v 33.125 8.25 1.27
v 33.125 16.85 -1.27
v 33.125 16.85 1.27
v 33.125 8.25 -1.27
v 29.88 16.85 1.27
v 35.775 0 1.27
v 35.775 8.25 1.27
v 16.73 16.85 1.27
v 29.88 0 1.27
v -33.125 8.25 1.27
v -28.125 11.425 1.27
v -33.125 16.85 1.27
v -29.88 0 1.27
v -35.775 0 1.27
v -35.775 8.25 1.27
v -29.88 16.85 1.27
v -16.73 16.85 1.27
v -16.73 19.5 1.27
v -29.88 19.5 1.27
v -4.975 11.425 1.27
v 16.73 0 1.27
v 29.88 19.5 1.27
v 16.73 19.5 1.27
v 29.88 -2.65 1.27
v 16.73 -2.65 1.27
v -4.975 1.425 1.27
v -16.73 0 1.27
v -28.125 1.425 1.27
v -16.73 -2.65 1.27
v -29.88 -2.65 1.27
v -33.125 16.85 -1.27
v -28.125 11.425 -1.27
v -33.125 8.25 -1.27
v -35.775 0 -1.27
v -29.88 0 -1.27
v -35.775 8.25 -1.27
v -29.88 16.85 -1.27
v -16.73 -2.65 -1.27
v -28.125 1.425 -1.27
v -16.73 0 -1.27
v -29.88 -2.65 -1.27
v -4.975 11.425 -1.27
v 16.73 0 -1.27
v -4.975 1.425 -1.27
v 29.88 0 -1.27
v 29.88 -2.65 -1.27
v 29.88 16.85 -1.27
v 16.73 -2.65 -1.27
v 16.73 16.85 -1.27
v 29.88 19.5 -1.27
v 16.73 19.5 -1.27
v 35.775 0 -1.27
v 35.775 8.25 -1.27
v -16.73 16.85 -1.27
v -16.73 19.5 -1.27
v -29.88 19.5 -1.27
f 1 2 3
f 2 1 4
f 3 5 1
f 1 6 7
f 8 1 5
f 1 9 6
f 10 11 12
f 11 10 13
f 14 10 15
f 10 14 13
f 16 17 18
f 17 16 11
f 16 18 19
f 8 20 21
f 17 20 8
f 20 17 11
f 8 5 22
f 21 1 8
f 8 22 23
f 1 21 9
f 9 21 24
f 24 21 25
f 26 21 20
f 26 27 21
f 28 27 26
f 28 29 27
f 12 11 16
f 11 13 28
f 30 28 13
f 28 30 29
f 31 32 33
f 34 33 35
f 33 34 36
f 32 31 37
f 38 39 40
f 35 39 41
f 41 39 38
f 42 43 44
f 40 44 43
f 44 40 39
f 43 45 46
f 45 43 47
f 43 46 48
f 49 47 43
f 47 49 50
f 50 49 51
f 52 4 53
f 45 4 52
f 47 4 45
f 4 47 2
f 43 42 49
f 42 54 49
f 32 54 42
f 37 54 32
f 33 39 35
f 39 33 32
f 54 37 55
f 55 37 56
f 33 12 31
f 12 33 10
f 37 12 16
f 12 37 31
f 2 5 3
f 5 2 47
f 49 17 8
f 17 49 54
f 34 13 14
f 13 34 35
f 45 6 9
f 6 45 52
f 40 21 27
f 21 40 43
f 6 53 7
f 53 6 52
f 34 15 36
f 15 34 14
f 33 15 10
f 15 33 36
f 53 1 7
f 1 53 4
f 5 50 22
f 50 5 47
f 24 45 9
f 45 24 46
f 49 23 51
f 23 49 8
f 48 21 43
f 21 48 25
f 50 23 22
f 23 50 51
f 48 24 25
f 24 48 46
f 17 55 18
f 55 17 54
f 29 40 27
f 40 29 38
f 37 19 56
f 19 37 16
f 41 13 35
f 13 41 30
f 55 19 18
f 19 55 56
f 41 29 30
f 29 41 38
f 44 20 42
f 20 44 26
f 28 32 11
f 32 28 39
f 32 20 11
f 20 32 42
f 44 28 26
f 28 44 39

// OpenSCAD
// Part for the base of my DSO311
//
//

// Configurable parameters - units in mm

/* [Outer Box Dimensions] */
width = 66.25;
height = 16.85;
depth = 2.54;

side_tab_width = 71.55;
side_tab_height = 8.25;

top_tab_width = 13.15;
top_tab_height = 22.15;

sep = 33.46;

hole_width = 23.15;
hole_height = 10.0;
hole_top_offset = 4.0;
hole_left_offset = 4.0;

$fn=50;

module main() {
    difference() {
        union() {
          translate([0, height/2, 0])
          cube([width, height, depth], center = true);

          translate([0, side_tab_height/2, 0])
          cube([side_tab_width, side_tab_height, depth], center = true);

          translate([sep/2 + top_tab_width / 2, height/2, 0])
          cube([top_tab_width, top_tab_height, depth], center = true);

          translate([-sep/2 - top_tab_width / 2, height/2, 0])
          cube([top_tab_width, top_tab_height, depth], center = true);
        }

        translate([hole_left_offset - width / 2 + hole_width / 2 + 1.0, height/2 - 2.0, 0])
        cube([hole_width, hole_height, depth + 1], center = true);
    }
}

main();
